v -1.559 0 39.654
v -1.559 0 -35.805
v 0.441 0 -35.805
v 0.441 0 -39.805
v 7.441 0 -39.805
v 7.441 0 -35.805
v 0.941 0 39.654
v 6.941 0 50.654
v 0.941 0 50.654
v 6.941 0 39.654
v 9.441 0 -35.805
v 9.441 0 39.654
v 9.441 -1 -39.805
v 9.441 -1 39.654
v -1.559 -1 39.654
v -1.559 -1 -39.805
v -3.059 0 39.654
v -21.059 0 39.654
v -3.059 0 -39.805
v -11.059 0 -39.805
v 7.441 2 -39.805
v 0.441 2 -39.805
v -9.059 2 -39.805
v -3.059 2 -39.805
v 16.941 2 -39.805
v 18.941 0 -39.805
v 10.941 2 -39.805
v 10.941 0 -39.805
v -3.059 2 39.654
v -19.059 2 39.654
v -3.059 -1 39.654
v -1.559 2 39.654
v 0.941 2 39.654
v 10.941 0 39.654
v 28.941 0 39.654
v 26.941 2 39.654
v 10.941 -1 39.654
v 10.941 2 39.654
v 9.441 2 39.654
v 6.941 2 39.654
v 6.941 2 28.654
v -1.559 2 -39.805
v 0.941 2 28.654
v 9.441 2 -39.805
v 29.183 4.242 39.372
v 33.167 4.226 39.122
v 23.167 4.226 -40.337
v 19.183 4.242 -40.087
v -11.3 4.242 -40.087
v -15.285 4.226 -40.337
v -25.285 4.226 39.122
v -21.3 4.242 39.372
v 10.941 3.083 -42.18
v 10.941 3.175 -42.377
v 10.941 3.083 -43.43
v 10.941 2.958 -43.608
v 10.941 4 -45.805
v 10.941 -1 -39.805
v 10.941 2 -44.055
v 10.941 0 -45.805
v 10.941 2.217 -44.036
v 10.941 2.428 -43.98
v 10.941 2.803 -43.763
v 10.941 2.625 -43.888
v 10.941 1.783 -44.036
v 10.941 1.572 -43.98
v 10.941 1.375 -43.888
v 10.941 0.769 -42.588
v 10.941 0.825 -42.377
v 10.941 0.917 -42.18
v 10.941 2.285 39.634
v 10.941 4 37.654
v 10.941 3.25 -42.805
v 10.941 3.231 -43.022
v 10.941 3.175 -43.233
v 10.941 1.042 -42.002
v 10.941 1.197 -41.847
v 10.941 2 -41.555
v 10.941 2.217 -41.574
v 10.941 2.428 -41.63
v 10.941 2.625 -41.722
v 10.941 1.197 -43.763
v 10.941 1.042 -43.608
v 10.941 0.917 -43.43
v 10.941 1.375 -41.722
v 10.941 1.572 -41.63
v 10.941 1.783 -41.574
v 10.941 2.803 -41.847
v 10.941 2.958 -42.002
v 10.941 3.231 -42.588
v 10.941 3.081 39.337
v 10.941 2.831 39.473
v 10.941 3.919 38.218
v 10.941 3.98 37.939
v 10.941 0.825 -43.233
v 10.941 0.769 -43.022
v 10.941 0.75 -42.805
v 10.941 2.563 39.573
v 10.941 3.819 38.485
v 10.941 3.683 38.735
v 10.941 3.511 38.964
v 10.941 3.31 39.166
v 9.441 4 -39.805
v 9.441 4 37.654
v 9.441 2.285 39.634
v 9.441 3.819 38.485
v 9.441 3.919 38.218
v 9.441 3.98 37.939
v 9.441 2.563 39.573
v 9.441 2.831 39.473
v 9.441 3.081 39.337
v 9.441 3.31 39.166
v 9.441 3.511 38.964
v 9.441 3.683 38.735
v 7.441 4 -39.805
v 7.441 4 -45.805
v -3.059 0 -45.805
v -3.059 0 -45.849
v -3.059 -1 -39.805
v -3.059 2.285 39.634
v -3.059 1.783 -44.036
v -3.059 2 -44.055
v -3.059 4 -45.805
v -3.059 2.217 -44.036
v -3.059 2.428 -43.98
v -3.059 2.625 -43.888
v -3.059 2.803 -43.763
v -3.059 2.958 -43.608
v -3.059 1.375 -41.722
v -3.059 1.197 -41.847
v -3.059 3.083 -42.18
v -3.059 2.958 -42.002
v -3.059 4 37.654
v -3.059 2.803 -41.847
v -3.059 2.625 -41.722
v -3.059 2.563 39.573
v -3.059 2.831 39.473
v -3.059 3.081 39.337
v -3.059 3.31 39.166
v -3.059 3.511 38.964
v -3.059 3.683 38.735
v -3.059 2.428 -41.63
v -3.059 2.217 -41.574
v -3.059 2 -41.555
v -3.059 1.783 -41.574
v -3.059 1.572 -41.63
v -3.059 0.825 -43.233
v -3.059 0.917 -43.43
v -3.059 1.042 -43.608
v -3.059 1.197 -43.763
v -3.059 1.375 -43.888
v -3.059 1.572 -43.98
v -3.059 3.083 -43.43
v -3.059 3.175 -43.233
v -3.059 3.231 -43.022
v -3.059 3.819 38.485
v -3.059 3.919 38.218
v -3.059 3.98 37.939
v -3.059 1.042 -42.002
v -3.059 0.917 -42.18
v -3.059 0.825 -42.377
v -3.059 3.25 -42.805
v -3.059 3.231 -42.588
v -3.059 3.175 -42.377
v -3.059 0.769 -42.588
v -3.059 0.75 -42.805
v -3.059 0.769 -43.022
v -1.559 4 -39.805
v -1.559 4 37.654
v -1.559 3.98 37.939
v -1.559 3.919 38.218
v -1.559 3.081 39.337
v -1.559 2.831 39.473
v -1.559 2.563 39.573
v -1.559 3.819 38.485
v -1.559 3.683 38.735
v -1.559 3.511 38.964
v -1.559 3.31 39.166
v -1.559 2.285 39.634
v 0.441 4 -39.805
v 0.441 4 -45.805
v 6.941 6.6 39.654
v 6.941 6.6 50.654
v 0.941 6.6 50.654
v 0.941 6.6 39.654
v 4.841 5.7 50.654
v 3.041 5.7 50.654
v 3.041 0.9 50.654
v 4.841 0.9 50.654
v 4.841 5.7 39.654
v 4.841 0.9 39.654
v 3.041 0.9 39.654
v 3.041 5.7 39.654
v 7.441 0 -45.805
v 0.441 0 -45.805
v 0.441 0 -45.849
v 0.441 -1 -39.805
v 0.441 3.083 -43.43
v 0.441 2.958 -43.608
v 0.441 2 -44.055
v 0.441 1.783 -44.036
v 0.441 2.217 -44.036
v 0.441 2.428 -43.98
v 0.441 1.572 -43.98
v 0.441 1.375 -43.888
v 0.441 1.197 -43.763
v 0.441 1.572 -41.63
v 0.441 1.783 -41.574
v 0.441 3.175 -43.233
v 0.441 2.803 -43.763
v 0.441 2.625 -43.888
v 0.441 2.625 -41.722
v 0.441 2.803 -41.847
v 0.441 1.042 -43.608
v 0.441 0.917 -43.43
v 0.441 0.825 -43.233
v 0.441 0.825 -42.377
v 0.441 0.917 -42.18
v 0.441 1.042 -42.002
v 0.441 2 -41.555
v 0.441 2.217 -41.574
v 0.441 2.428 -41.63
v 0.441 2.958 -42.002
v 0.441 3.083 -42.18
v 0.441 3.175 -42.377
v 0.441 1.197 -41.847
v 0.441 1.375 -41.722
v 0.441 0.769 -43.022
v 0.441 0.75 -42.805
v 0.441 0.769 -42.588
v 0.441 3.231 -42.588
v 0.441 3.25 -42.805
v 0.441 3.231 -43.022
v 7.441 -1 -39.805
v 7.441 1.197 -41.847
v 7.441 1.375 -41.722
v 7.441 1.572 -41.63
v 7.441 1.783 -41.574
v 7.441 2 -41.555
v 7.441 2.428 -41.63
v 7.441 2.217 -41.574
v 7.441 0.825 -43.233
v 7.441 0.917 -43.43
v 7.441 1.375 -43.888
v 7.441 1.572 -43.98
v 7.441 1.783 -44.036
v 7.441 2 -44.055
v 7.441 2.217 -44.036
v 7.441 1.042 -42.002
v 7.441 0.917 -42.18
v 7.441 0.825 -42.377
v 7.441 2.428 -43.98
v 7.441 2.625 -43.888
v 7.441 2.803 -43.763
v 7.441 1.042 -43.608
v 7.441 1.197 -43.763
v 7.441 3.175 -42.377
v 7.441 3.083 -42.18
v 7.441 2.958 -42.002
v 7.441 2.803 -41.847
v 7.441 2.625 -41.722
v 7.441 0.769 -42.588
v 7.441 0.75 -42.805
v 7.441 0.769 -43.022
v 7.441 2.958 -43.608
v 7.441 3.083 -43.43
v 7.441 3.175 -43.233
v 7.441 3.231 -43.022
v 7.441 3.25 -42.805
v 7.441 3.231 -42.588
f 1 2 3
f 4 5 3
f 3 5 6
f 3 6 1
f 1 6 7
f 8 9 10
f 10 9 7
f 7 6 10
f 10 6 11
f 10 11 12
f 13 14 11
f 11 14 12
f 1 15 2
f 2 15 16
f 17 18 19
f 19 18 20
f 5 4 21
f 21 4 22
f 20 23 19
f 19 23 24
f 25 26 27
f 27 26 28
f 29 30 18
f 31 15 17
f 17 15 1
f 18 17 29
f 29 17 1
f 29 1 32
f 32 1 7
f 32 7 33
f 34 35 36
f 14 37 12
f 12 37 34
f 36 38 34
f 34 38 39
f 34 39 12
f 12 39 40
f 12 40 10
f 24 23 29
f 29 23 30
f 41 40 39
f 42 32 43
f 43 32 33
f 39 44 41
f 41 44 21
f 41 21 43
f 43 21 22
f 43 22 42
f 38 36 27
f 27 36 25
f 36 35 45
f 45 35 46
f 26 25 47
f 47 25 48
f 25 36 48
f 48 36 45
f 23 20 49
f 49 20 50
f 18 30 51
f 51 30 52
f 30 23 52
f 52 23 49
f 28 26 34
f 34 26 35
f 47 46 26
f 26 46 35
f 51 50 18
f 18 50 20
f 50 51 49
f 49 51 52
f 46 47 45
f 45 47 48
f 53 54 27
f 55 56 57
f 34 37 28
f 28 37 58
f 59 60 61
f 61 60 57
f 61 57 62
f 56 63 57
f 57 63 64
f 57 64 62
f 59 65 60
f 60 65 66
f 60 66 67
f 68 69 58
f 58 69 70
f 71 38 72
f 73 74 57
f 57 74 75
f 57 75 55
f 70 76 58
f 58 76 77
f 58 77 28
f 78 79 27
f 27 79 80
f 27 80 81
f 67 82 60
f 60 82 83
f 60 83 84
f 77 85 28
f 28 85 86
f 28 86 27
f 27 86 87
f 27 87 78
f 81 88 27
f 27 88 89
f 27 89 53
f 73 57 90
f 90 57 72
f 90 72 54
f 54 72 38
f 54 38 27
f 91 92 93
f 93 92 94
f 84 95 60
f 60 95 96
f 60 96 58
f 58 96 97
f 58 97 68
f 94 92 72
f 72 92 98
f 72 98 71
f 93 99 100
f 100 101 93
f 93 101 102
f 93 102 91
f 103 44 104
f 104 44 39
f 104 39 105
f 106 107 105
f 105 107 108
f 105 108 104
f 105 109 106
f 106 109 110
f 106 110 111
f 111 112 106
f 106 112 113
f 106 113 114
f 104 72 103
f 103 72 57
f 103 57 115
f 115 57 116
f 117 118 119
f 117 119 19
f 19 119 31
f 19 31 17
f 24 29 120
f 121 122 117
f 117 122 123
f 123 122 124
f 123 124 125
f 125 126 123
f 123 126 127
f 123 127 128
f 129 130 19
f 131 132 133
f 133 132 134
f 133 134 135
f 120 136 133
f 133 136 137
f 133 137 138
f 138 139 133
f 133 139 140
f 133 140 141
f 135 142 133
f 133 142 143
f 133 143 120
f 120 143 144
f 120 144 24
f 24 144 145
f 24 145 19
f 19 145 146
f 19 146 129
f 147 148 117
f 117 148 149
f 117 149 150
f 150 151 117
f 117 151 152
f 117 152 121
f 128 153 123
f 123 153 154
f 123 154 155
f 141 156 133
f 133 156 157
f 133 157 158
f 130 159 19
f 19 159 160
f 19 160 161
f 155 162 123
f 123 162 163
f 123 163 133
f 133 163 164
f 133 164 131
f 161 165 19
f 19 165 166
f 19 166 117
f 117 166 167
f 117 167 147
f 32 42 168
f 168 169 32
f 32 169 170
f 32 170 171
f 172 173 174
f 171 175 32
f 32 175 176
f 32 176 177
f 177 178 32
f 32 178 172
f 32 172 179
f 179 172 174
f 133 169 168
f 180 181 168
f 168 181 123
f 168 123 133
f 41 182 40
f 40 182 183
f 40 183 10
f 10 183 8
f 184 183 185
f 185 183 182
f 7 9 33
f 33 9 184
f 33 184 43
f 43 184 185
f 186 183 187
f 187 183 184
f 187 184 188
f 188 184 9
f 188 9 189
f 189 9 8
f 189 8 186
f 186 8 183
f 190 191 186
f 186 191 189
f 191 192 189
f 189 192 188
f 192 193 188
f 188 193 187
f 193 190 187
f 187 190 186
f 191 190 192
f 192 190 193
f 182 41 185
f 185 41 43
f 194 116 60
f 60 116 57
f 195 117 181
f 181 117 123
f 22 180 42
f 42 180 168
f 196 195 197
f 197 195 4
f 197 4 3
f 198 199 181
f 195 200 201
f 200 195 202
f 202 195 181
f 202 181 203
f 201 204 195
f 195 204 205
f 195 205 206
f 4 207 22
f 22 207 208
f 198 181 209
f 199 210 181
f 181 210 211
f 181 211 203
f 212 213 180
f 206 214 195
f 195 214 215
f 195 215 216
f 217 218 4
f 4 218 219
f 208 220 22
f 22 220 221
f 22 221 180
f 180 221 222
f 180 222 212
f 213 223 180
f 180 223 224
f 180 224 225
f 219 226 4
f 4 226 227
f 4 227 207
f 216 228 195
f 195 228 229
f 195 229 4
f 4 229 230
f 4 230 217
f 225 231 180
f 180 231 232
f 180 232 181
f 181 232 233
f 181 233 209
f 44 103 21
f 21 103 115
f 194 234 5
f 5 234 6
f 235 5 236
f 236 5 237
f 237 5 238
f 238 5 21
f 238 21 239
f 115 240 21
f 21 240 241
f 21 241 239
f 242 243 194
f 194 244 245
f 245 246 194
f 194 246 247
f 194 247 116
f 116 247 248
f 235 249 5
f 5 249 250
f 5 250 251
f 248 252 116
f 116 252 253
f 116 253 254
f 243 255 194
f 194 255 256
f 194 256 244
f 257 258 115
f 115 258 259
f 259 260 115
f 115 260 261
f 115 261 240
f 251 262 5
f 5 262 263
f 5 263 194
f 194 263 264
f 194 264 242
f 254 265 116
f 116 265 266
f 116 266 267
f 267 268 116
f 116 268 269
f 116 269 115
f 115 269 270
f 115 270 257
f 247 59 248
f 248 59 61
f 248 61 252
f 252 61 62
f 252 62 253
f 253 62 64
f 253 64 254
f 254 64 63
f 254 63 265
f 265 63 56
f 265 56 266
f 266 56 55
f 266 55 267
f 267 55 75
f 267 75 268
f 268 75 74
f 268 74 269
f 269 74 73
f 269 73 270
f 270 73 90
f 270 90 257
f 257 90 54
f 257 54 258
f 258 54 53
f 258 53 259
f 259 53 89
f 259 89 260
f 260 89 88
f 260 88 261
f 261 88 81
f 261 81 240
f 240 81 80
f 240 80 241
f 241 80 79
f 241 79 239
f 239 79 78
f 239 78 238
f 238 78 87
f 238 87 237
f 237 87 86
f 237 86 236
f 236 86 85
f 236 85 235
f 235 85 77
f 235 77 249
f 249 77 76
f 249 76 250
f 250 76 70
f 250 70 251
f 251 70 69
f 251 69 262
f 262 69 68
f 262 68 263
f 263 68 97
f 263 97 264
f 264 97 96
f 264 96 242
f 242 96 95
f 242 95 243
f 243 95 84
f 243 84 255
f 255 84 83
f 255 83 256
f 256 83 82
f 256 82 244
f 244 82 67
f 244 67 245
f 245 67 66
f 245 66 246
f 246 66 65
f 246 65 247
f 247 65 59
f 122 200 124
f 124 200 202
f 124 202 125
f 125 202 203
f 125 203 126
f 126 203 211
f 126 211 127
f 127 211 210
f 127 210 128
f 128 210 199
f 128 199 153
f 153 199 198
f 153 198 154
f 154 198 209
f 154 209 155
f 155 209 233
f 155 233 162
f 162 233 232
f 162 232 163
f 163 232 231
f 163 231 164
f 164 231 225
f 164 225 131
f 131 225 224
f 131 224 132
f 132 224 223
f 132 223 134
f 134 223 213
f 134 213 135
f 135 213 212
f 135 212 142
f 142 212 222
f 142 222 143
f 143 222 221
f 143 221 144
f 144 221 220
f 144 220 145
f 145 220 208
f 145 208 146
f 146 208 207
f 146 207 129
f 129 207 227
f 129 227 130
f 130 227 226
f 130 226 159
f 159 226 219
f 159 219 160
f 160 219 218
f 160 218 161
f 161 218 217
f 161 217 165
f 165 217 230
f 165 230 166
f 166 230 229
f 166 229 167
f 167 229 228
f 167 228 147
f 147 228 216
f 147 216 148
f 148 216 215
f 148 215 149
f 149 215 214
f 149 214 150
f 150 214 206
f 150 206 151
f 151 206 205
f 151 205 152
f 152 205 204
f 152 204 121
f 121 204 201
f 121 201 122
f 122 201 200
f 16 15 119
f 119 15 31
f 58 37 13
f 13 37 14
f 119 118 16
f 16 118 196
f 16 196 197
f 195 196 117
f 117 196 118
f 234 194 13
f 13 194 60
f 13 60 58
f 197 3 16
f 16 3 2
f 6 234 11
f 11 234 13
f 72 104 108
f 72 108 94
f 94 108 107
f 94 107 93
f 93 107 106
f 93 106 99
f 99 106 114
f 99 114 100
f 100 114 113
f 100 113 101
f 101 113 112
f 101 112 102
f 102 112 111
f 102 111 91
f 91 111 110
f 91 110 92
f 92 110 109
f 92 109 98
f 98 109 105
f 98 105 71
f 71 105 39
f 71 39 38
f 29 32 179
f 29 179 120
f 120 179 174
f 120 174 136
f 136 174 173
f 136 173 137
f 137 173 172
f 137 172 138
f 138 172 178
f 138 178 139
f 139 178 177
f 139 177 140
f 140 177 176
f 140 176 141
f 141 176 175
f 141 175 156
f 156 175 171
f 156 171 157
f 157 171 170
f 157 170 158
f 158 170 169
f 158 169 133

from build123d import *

# Parameters (mm, degrees)
BOSS_EXTRUDE1_DEPTH       = 2
BOSS_EXTRUDE2_DEPTH       = 6
BOSS_EXTRUDE3_DEPTH       = 6
SKETCH14_W                = 1.5
SKETCH14_H                = 79.45913029
BOSS_EXTRUDE4_DEPTH       = 2
BOSS_EXTRUDE5_DEPTH       = 11
SKETCH19_W                = 1.8
SKETCH19_H                = 4.8
CUT_EXTRUDE2_DEPTH        = 11
BOSS_EXTRUDE7_DEPTH       = 6
SKETCH21_W                = 1.5
SKETCH21_H                = 4
BOSS_EXTRUDE8_DEPTH       = 6
SKETCH24_W                = 6
SKETCH24_H                = 4
BOSS_EXTRUDE9_DEPTH       = 3.5
SKETCH25_W                = 6
SKETCH25_H                = 4
BOSS_EXTRUDE10_DEPTH      = 3.5
SKETCH22_R                = 1.25
CUT_EXTRUDE3_DEPTH        = 23.5
SKETCH27_W                = 1.5
SKETCH27_H                = 79.45913029
BOSS_EXTRUDE11_DEPTH      = 5
BOSS_EXTRUDE12_DEPTH      = 2
BOSS_EXTRUDE12_DEPTH_BACK = 1.5
BOSS_EXTRUDE13_DEPTH      = 3.5
BOSS_EXTRUDE14_DEPTH      = 2
BOSS_EXTRUDE15_DEPTH      = 2
FILLET2_R                 = 2


with BuildPart() as part:
    # Sketch1 → Boss-Extrude1 (new body)
    with BuildSketch(Plane(origin=(0, 0, 0), x_dir=(1, 0, 0), z_dir=(0, 1, 0))):
        Polygon((-21.058581006, -39.654130901), (28.941418994, -39.654130901), (18.941418994, 39.804999389), (-11.058581006, 39.804999389), align=None)
    extrude(amount=BOSS_EXTRUDE1_DEPTH)

    # Sketch2 → Cut-Loft1 section 0
    with BuildSketch(Plane.XY.offset(39.654130901)):
        Polygon((-21.058581006, 2), (-21.058581006, 0), (-19.058581006, 2), align=None)
    # Sketch3 → Cut-Loft1 section 1
    with BuildSketch(Plane(origin=(0, 0, -39.804999389), x_dir=(-1, 0, 0), z_dir=(0, 0, -1))):
        Polygon((11.058581006, 0), (11.058581006, 2), (9.058581006, 2), align=None)
    loft(mode=Mode.SUBTRACT)

    # Sketch5 → Cut-Loft2 section 0
    with BuildSketch(Plane(origin=(0, 0, -39.804999389), x_dir=(-1, 0, 0), z_dir=(0, 0, -1))):
        Polygon((-18.941418994, 0), (-18.941418994, 2), (-16.941418994, 2), align=None)
    # Sketch4 → Cut-Loft2 section 1
    with BuildSketch(Plane.XY.offset(39.654130901)):
        Polygon((28.941418994, 0), (28.941418994, 2), (26.941418994, 2), align=None)
    loft(mode=Mode.SUBTRACT)

    # Sketch6 → Boss-Extrude2 (add)
    with BuildSketch(Plane(origin=(11.881365089, 11.881365089, -1.495280032), x_dir=(-0.062677741, -0.062677741, -0.996063754), z_dir=(0.704323435, 0.704323435, -0.088639711))):
        Polygon((-41.312025236, -20.464673628), (38.461111762, -13.393605816), (38.461111762, -10.565178691), (-41.312025236, -17.636246503), align=None)
    extrude(amount=BOSS_EXTRUDE2_DEPTH)

    # Sketch7 → Boss-Extrude3 (add)
    with BuildSketch(Plane(origin=(-7.970913818, 7.970913818, -1.003146371), x_dir=(-0.062677741, 0.062677741, 0.996063754), z_dir=(-0.704323435, 0.704323435, -0.088639711))):
        Polygon((-38.955190238, -4.991170495), (40.81794676, -12.062238307), (40.81794676, -14.890665432), (-38.955190238, -7.81959762), align=None)
    extrude(amount=BOSS_EXTRUDE3_DEPTH)

    # Sketch9 → Cut-Loft3 section 0
    with BuildSketch(Plane(origin=(2.441623315, -2.441623315, -38.801853018), x_dir=(-0.998033817, -0.003936239, -0.062554018), z_dir=(0.062677741, -0.062677741, -0.996063754))):
        Polygon((17.761066429, 6.750801427), (13.768931159, 6.750801427), (15.757126317, 8.746853538), align=None)
    # Sketch8 → Cut-Loft3 section 1
    with BuildSketch(Plane(origin=(-2.558376685, 2.558376685, 40.657277272), x_dir=(0.998033817, 0.003936239, 0.062554018), z_dir=(-0.062677741, 0.062677741, 0.996063754))):
        Polygon((-22.770916709, 1.760671151), (-18.778781439, 1.760671151), (-20.766976597, 3.756723262), align=None)
    loft(mode=Mode.SUBTRACT)

    # Sketch13 → Cut-Loft4 section 0
    with BuildSketch(Plane(origin=(2.589344408, 2.589344408, 41.149410933), x_dir=(0.998033817, -0.003936239, -0.062554018), z_dir=(0.062677741, 0.062677741, 0.996063754))):
        Polygon((30.638255597, 1.760671151), (26.646120328, 1.760671151), (28.634315485, 3.756723262), align=None)
    # Sketch12 → Cut-Loft4 section 1
    with BuildSketch(Plane(origin=(-2.410655592, -2.410655592, -38.309719357), x_dir=(-0.998033817, 0.003936239, 0.062554018), z_dir=(-0.062677741, -0.062677741, -0.996063754))):
        Polygon((-25.628405317, 6.750801427), (-21.636270047, 6.750801427), (-23.624465205, 8.746853538), align=None)
    loft(mode=Mode.SUBTRACT)

    # Sketch14 → Boss-Extrude4 (add)
    with BuildSketch(Plane(origin=(0, 2, 0), x_dir=(1, 0, 0), z_dir=(0, 1, 0))):
        with Locations((10.191418994, 0.075434244)):
            Rectangle(SKETCH14_W, SKETCH14_H)
        with Locations((-2.308581006, 0.075434244)):
            Rectangle(SKETCH14_W, SKETCH14_H)
    extrude(amount=BOSS_EXTRUDE4_DEPTH)

    # Sketch15 → Boss-Extrude5 (add)
    with BuildSketch(Plane.XY.offset(39.654130901)):
        Polygon((3.941418994, 0), (6.941418994, 0), (6.941418994, 6.6), (0.941418994, 6.6), (0.941418994, 0), align=None)
    extrude(amount=BOSS_EXTRUDE5_DEPTH)

    # Sketch19 → Cut-Extrude2 (cut)
    with BuildSketch(Plane.XY.offset(50.654130901)):
        with Locations((3.941418994, 3.3)):
            Rectangle(SKETCH19_W, SKETCH19_H)
    extrude(amount=-CUT_EXTRUDE2_DEPTH, mode=Mode.SUBTRACT)

    # Sketch20 → Boss-Extrude7 (add)
    with BuildSketch(Plane.ZY.offset(-0.941418994)):
        Polygon((39.654130901, 2), (28.654130901, 2), (39.654130901, 6.6), align=None)
    extrude(amount=-BOSS_EXTRUDE7_DEPTH)

    # Sketch21 → Boss-Extrude8 (add)
    with BuildSketch(Plane(origin=(0, 0, -39.804999389), x_dir=(-1, 0, 0), z_dir=(0, 0, -1))):
        with Locations((-10.191418994, 2)):
            Rectangle(SKETCH21_W, SKETCH21_H)
        with Locations((2.308581006, 2)):
            Rectangle(SKETCH21_W, SKETCH21_H)
    extrude(amount=BOSS_EXTRUDE8_DEPTH)

    # Sketch24 → Boss-Extrude9 (add)
    with BuildSketch(Plane.ZY.offset(3.058581006)):
        with Locations((-42.804999389, 2)):
            Rectangle(SKETCH24_W, SKETCH24_H)
    extrude(amount=-BOSS_EXTRUDE9_DEPTH)

    # Sketch25 → Boss-Extrude10 (add)
    with BuildSketch(Plane(origin=(10.941418994, 0, 0), x_dir=(0, 0, -1), z_dir=(1, 0, 0))):
        with Locations((42.804999389, 2)):
            Rectangle(SKETCH25_W, SKETCH25_H)
    extrude(amount=-BOSS_EXTRUDE10_DEPTH)

    # Sketch22 → Cut-Extrude3 (cut)
    with BuildSketch(Plane(origin=(10.941418994, 0, 0), x_dir=(0, 0, -1), z_dir=(1, 0, 0))):
        with Locations((42.804999389, 2)):
            Circle(SKETCH22_R)
    extrude(amount=-CUT_EXTRUDE3_DEPTH, mode=Mode.SUBTRACT)

    # Sketch27 → Boss-Extrude11 (add)
    with BuildSketch(Plane(origin=(0, 4, 0), x_dir=(1, 0, 0), z_dir=(0, 1, 0))):
        with Locations((-2.308581006, 0.075434244)):
            Rectangle(SKETCH27_W, SKETCH27_H)
        with Locations((10.191418994, 0.075434244)):
            Rectangle(SKETCH27_W, SKETCH27_H)
    extrude(amount=-BOSS_EXTRUDE11_DEPTH)

    # Sketch28 → Boss-Extrude12 (add, two sides)
    with BuildSketch(Plane(origin=(-1.558581006, 0, 0), x_dir=(0, 0, -1), z_dir=(1, 0, 0))) as boss_extrude12_sk:
        Polygon((39.804999389, -1), (39.804999389, 0), (45.848869538, 0), align=None)
    extrude(amount=BOSS_EXTRUDE12_DEPTH)
    extrude(boss_extrude12_sk.sketch, amount=-BOSS_EXTRUDE12_DEPTH_BACK)

    # Sketch29 → Boss-Extrude13 (add)
    with BuildSketch(Plane(origin=(10.941418994, 0, 0), x_dir=(0, 0, -1), z_dir=(1, 0, 0))):
        Polygon((39.804999389, 0), (45.804999389, 0), (39.804999389, -1), align=None)
    extrude(amount=-BOSS_EXTRUDE13_DEPTH)

    # Sketch31 → Boss-Extrude14 (add)
    with BuildSketch(Plane(origin=(-1.558581006, 0, 0), x_dir=(0, 0, -1), z_dir=(1, 0, 0))):
        Polygon((39.804999389, -1), (35.804999389, 0), (39.804999389, 0), align=None)
    extrude(amount=BOSS_EXTRUDE14_DEPTH)

    # Sketch32 → Boss-Extrude15 (add)
    with BuildSketch(Plane.ZY.offset(-9.441418994)):
        Polygon((-39.804999389, 0), (-39.804999389, -1), (-35.804999389, 0), align=None)
    extrude(amount=BOSS_EXTRUDE15_DEPTH)

    # Fillet2
    fillet2_edges = [part.edges().sort_by_distance(p)[0] for p in [
        (10.191418994, 4, 39.654130901),
        (-2.308581006, 4, 39.654130901),
    ]]
    fillet(fillet2_edges, radius=FILLET2_R)


solid = part.part
